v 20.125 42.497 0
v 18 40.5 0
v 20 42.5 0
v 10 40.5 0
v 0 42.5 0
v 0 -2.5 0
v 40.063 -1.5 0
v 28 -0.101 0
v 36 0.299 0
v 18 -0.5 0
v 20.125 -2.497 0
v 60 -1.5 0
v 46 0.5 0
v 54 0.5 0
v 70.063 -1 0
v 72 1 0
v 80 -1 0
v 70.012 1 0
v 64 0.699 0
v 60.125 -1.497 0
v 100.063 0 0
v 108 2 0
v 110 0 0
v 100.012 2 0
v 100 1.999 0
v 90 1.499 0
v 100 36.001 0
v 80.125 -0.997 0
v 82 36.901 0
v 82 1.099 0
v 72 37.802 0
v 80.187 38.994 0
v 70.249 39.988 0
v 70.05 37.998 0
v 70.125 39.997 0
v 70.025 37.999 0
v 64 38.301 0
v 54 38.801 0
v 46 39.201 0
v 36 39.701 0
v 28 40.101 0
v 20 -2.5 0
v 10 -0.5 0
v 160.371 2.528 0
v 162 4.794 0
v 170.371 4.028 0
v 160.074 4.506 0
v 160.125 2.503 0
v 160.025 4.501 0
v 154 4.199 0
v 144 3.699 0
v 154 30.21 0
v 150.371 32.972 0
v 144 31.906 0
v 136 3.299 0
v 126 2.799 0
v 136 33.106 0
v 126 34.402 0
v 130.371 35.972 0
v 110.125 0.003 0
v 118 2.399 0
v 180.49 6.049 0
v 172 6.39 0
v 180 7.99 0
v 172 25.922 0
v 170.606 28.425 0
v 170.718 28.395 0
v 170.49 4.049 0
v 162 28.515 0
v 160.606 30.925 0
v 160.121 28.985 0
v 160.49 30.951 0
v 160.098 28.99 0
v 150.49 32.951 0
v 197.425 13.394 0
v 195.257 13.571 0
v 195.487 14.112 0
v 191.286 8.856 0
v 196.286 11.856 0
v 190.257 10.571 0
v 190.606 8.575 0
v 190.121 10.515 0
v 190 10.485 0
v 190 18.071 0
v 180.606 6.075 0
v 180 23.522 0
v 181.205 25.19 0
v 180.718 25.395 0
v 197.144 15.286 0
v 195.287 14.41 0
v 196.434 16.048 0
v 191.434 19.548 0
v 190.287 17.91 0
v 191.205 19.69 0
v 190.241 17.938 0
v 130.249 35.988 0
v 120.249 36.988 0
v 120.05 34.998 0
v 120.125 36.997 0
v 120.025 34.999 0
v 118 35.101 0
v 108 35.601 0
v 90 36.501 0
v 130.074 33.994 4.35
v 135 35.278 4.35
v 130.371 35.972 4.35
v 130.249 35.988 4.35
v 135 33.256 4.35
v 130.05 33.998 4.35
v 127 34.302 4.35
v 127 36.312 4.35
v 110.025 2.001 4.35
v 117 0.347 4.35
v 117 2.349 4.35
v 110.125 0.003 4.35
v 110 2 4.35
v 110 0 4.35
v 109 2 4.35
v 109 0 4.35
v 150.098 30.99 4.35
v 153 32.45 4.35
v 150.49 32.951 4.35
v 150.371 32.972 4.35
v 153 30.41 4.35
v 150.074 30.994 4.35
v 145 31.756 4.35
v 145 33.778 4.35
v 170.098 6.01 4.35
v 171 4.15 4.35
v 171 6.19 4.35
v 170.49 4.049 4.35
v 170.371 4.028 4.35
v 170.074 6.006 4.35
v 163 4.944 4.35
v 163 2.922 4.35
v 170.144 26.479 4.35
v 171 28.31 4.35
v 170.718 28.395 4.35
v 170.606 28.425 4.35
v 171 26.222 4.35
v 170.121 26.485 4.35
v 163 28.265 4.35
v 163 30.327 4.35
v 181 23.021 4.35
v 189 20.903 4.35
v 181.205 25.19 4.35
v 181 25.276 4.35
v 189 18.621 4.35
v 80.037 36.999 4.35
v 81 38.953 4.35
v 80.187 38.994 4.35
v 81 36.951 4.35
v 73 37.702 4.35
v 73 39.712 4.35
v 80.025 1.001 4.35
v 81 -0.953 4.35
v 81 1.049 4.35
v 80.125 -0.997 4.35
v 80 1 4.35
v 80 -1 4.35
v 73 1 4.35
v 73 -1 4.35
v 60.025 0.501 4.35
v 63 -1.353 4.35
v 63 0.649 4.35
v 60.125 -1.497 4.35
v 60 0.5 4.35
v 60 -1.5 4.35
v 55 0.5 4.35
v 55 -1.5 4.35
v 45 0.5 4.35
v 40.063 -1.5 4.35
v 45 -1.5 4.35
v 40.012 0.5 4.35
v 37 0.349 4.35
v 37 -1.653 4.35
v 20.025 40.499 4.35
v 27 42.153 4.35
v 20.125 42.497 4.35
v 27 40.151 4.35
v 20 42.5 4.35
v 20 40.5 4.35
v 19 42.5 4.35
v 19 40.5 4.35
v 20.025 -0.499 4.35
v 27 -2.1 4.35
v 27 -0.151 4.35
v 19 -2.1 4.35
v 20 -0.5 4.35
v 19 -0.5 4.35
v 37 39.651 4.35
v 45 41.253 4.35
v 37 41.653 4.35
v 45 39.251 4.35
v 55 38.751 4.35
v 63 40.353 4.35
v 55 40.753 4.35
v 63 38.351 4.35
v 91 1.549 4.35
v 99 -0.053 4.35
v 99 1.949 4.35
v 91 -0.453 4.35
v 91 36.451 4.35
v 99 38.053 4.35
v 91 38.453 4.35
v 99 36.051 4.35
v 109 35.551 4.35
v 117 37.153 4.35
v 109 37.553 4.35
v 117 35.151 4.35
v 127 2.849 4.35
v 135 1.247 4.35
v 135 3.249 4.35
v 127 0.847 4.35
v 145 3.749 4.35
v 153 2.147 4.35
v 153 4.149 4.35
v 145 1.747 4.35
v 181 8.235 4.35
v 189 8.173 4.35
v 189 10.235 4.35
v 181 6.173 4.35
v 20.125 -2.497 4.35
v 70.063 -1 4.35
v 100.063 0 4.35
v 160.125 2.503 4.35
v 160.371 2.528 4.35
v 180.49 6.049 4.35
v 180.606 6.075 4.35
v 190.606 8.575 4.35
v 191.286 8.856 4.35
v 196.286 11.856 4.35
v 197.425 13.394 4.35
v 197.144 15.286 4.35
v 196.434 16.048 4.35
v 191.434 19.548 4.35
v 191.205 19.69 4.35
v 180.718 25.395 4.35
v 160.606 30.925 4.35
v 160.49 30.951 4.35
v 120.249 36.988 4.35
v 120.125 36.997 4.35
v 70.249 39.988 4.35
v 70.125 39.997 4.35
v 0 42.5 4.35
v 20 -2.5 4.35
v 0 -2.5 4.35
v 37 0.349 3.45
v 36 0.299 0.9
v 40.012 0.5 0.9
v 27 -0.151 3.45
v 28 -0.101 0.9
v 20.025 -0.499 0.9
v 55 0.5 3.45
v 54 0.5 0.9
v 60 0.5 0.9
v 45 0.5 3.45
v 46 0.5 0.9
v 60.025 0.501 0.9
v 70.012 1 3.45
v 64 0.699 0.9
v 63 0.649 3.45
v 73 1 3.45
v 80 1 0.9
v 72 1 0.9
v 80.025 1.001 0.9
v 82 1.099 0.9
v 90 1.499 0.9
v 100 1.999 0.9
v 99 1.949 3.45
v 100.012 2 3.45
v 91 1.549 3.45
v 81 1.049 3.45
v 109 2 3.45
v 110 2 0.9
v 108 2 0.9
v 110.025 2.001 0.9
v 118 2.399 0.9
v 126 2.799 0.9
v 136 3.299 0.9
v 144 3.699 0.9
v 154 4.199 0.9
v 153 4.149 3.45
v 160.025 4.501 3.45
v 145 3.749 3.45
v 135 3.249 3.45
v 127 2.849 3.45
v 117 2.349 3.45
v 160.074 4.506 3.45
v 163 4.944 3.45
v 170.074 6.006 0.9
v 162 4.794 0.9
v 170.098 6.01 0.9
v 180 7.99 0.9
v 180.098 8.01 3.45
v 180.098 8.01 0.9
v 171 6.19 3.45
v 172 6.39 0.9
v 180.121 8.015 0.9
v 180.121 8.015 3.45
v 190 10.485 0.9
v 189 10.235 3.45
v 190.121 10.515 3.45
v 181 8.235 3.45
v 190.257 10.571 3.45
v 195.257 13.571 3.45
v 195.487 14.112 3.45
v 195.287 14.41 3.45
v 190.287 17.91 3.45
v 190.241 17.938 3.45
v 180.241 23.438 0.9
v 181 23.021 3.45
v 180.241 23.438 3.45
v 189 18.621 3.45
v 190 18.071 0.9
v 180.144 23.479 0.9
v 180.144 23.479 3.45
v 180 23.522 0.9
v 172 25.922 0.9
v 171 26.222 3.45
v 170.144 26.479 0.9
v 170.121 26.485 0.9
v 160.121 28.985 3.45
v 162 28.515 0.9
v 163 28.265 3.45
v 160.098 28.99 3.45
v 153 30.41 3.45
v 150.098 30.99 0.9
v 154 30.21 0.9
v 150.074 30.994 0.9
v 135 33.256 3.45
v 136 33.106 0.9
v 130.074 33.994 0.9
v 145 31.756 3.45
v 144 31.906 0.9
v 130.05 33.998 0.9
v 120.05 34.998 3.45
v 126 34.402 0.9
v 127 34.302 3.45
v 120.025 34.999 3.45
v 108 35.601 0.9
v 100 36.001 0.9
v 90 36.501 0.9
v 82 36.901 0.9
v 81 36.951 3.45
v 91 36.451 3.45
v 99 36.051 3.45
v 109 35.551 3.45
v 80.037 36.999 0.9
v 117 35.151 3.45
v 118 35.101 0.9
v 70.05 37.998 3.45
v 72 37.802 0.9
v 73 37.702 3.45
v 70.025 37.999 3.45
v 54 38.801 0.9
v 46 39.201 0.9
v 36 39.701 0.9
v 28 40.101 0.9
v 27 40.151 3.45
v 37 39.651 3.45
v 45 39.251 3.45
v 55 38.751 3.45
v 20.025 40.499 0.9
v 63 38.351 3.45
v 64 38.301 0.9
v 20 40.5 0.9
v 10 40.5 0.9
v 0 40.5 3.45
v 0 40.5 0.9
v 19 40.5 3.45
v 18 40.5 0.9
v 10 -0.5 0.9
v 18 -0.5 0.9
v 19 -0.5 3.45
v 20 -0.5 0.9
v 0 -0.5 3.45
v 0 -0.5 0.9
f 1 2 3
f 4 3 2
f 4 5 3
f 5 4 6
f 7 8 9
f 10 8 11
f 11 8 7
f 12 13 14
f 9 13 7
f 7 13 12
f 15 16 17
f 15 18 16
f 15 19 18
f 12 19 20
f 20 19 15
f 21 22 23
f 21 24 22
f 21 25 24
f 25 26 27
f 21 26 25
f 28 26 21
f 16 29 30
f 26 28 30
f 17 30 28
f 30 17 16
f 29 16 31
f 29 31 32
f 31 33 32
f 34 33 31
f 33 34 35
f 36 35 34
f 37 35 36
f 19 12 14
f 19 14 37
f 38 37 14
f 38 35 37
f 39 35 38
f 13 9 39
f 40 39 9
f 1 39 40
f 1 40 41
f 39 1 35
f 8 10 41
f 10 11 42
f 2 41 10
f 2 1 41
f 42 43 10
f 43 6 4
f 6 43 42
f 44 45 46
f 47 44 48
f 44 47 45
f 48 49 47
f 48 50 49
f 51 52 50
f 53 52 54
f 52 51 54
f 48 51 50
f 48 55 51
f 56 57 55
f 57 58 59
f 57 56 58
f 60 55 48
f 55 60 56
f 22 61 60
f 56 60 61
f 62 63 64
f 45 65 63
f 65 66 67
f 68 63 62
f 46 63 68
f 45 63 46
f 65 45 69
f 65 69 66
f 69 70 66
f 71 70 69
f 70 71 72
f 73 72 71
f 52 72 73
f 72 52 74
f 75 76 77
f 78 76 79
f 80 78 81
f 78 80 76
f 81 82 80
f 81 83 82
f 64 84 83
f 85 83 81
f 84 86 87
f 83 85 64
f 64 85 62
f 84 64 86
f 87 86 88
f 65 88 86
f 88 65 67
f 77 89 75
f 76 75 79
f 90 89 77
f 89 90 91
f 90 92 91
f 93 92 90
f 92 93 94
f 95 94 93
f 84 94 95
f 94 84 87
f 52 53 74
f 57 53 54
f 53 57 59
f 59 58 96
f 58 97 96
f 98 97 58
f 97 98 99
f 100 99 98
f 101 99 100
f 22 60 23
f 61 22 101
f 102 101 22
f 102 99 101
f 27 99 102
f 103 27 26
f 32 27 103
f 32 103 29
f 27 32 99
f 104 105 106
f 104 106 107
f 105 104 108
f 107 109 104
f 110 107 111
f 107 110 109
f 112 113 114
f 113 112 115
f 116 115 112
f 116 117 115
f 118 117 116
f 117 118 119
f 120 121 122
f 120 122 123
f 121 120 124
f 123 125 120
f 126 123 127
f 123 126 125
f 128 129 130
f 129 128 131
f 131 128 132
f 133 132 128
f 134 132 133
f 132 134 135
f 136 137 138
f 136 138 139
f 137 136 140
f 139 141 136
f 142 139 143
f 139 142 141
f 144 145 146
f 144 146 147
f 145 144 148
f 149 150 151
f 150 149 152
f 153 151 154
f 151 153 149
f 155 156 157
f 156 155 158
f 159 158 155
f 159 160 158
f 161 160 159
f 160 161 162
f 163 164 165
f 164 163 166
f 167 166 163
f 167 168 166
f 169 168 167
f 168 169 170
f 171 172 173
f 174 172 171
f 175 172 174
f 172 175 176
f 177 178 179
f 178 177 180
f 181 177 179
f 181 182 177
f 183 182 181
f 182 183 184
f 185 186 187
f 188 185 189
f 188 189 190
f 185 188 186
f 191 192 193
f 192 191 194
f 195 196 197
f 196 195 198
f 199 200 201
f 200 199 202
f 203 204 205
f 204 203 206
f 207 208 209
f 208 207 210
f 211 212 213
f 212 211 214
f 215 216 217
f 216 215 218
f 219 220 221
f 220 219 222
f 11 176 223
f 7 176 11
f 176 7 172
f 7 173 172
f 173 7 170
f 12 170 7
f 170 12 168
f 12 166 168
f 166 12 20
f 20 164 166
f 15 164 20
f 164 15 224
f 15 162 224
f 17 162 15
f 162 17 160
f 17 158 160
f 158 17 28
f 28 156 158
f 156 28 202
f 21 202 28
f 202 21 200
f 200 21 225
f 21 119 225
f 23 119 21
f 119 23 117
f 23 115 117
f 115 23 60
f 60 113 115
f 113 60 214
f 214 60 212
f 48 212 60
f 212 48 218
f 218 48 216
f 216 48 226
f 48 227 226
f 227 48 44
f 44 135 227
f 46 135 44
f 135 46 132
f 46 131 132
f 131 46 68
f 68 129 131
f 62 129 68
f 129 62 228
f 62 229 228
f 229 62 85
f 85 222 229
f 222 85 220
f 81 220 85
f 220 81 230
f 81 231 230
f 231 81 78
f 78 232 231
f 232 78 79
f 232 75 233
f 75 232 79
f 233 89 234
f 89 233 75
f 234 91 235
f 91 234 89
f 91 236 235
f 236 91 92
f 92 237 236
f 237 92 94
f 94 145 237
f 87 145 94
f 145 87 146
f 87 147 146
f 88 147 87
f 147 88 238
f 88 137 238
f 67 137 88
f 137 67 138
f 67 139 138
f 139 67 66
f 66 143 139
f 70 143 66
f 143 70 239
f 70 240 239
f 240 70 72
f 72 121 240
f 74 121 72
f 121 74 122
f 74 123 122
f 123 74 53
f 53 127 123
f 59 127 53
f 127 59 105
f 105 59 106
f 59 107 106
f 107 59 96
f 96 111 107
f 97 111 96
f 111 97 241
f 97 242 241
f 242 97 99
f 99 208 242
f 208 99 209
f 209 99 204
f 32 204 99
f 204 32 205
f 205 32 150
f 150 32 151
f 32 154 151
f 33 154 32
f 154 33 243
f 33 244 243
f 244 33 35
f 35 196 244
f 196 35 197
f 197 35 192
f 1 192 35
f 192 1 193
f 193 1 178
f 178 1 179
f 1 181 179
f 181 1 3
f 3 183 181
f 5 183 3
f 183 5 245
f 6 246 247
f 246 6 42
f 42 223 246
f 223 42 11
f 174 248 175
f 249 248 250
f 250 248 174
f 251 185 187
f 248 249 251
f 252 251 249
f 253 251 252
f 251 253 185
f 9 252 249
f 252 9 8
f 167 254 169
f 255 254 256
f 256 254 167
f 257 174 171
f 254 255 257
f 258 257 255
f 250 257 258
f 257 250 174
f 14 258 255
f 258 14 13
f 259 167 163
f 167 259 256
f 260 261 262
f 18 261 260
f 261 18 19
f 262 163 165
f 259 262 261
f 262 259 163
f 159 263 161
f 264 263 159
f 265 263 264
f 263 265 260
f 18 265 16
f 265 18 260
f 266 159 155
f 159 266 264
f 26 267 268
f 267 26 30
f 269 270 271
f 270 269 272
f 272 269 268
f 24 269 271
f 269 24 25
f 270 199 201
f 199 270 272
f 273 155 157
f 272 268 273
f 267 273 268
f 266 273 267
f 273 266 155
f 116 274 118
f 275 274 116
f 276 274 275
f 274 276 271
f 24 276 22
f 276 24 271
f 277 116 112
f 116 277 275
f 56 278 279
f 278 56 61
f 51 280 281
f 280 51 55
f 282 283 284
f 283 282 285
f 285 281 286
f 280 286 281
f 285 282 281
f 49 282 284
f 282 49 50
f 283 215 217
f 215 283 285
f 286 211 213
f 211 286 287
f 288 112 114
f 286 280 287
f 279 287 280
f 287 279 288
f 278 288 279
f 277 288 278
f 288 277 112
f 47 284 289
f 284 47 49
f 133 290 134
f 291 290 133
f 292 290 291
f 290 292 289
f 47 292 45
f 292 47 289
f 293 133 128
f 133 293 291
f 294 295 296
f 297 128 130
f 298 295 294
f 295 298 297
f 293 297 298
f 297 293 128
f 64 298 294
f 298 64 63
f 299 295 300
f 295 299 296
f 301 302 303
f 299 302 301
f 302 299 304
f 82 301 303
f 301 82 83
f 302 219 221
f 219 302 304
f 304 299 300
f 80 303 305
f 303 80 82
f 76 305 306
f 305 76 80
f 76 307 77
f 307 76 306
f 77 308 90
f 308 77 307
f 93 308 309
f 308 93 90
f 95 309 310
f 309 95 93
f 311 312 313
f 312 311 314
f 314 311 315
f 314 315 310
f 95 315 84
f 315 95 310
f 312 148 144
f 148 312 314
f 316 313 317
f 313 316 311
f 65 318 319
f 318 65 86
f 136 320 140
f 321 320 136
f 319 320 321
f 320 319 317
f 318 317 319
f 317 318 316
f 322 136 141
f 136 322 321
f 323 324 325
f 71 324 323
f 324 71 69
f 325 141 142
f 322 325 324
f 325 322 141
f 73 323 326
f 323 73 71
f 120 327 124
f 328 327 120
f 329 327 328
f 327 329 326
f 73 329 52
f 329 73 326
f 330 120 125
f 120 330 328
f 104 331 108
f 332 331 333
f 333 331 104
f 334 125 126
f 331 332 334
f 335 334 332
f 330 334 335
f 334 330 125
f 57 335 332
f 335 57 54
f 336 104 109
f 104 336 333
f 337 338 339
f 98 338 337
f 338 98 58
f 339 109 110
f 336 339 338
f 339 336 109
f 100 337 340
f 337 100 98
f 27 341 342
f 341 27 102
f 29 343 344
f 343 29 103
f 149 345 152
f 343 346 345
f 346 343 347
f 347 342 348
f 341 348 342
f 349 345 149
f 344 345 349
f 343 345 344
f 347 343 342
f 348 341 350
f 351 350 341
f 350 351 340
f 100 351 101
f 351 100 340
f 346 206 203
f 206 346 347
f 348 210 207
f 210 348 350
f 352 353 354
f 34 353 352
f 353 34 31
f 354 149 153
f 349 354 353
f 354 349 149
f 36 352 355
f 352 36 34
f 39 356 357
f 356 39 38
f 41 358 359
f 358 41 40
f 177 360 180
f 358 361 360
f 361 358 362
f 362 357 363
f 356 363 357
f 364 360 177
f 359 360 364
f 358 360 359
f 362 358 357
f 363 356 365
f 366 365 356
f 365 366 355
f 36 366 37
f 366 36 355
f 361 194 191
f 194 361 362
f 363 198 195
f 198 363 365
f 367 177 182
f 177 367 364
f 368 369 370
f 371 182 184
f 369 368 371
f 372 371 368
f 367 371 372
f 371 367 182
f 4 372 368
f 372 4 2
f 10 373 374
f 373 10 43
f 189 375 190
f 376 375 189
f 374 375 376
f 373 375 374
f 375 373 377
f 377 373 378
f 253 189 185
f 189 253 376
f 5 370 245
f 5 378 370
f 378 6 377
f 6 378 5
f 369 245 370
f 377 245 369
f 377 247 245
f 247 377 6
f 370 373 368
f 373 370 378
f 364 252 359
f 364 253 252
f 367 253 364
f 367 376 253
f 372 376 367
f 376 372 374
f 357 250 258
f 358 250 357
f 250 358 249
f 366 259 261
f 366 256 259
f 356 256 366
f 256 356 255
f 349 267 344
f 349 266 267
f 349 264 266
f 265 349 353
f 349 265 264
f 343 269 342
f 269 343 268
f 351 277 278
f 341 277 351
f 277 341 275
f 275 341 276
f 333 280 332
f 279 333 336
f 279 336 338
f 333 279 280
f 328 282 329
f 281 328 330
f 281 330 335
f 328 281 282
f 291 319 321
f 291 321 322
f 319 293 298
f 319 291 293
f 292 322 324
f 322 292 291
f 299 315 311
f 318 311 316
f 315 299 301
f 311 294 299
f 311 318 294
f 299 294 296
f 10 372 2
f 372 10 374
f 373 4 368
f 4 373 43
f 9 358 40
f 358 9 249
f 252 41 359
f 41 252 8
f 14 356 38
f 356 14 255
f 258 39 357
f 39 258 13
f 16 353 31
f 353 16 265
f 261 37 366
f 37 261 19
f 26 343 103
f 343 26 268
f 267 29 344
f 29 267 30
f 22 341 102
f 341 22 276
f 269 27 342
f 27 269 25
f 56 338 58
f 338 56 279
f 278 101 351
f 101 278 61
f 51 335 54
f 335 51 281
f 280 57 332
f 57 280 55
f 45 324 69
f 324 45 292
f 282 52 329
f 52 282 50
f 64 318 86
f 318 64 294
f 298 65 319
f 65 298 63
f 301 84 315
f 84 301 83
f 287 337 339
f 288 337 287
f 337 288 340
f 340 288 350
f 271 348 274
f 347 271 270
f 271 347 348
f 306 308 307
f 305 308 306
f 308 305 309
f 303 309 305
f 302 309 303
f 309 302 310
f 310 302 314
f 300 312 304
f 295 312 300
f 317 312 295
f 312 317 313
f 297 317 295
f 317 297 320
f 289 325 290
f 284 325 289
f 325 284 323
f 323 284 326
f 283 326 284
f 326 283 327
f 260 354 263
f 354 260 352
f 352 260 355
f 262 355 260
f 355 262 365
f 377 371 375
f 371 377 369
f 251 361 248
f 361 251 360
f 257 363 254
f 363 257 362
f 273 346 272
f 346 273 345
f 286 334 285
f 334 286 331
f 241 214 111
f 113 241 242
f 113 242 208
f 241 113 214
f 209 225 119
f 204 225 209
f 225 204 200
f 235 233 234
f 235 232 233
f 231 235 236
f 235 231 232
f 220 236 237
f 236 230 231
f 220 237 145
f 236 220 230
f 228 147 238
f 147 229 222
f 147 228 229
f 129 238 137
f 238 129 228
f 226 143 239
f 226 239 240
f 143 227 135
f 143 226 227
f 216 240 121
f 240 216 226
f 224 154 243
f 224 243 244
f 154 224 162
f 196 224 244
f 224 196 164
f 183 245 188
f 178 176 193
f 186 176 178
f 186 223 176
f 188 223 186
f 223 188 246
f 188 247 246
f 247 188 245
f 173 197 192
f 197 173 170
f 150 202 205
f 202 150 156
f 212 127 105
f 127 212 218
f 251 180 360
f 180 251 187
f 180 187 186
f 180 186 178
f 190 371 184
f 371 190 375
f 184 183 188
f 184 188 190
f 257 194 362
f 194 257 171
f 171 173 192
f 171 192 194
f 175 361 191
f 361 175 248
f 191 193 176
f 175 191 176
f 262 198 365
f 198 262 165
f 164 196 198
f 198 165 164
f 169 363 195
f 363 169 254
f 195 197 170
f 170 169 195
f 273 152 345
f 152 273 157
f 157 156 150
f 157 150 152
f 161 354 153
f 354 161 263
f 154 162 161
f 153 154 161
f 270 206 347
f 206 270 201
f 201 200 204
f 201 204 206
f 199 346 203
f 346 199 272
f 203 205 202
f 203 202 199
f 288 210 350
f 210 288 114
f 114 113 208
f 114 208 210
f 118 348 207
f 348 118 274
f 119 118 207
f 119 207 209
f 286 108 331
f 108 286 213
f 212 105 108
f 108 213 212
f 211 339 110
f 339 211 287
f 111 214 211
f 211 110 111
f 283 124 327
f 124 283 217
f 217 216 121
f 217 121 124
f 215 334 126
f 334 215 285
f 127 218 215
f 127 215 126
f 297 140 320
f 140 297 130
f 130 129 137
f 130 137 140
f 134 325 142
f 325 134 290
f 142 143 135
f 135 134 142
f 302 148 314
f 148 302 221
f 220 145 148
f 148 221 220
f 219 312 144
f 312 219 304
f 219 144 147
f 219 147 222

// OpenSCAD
extrusion = 0.45;
wallPerimeters = 2;
bladeThickness = 2.55;
frameThickness = 2;
wallThickness = extrusion*wallPerimeters;
totalThickness = 2*wallThickness+bladeThickness;
clearance=0.5;
cutoutWidth = 8;
cutoutOverlap = 1;
cutoutStart = 10;
f = 1.0/10; // fudge factor
f2 = f*2;
fvz = [0,0,-f];

// waypoints is too long to type, sorry
// list of waypoints in ascending x-coordinate order
// Form is [x, bottom y, top y]; begin with x=0
wps = [
    [0, 0, 40],
    [10, 0, 40],
    [20, 0, 40],
    [30, 0.5, 39.5],
    [40, 1, 39],
    [50, 1, 38.5],
    [60, 1, 38],
    [70, 1.5, 37.5],
    [80, 1.5, 36.5],
    [90, 2, 36],
    [100, 2.5, 35.5],
    [110, 2.5, 35],
    [120, 3, 34.5],
    [130, 3.5, 33.5],
    [140, 4, 32],
    [150, 4.5, 30.5],
    [160, 5, 28.5],
    [170, 6.5, 26],
    [180, 8.5, 23],
    [190, 11, 17.5],
    [195, 14, 14]
    ];
function maxList(a, i = 0) = (i < len(a) - 1) ? max(a[i], maxList(a, i+1)) : a[i];
function column(a, index) = [for (L=a) L[index]];
    echo (column(wps,1));
maxX=maxList(column(wps,0));
maxY=maxList(column(wps,2));

union() {
    frame();
    wallWithCutouts(start=10);
    translate([0,0,wallThickness+bladeThickness]) wallWithCutouts(start=cutoutStart+cutoutWidth+cutoutOverlap);
}
module frame(){
    difference() {
        linear_extrude(height=totalThickness) offset(r=frameThickness+clearance) bladePolys();
        translate(fvz) linear_extrude(height=totalThickness+f2) offset(r=clearance) bladePolys();
        mirror([1,0,0]) translate([0,-2*frameThickness+clearance,-f]) cube([2*frameThickness+clearance, maxY+4*frameThickness+clearance,totalThickness+f2]);
    }
}

module bladePolys(){
    for(i=[0:len(wps)-2]) {
        polygon([[wps[i][0],wps[i][1]], [wps[i][0],wps[i][2]], [wps[i+1][0],wps[i+1][2]],[wps[i+1][0], wps[i+1][1]],[wps[i][0],wps[i][1]]]);
    }
}

module wall() {
    difference() {
        linear_extrude(wallThickness) offset(r=frameThickness+clearance) bladePolys();
        mirror([1,0,0]) translate([0,-2*frameThickness+clearance,-f]) cube([2*frameThickness+clearance, maxY+4*frameThickness+clearance,wallThickness+f2]);
    }
}

module wallWithCutouts(start=0) {
    difference() {
        wall();
        for(x=[start:2*cutoutWidth+2*cutoutOverlap:maxX]) translate([x,-f-frameThickness,-f]) cube([cutoutWidth,maxY+2*frameThickness+clearance+f2,wallThickness+f2]);
    }
}
